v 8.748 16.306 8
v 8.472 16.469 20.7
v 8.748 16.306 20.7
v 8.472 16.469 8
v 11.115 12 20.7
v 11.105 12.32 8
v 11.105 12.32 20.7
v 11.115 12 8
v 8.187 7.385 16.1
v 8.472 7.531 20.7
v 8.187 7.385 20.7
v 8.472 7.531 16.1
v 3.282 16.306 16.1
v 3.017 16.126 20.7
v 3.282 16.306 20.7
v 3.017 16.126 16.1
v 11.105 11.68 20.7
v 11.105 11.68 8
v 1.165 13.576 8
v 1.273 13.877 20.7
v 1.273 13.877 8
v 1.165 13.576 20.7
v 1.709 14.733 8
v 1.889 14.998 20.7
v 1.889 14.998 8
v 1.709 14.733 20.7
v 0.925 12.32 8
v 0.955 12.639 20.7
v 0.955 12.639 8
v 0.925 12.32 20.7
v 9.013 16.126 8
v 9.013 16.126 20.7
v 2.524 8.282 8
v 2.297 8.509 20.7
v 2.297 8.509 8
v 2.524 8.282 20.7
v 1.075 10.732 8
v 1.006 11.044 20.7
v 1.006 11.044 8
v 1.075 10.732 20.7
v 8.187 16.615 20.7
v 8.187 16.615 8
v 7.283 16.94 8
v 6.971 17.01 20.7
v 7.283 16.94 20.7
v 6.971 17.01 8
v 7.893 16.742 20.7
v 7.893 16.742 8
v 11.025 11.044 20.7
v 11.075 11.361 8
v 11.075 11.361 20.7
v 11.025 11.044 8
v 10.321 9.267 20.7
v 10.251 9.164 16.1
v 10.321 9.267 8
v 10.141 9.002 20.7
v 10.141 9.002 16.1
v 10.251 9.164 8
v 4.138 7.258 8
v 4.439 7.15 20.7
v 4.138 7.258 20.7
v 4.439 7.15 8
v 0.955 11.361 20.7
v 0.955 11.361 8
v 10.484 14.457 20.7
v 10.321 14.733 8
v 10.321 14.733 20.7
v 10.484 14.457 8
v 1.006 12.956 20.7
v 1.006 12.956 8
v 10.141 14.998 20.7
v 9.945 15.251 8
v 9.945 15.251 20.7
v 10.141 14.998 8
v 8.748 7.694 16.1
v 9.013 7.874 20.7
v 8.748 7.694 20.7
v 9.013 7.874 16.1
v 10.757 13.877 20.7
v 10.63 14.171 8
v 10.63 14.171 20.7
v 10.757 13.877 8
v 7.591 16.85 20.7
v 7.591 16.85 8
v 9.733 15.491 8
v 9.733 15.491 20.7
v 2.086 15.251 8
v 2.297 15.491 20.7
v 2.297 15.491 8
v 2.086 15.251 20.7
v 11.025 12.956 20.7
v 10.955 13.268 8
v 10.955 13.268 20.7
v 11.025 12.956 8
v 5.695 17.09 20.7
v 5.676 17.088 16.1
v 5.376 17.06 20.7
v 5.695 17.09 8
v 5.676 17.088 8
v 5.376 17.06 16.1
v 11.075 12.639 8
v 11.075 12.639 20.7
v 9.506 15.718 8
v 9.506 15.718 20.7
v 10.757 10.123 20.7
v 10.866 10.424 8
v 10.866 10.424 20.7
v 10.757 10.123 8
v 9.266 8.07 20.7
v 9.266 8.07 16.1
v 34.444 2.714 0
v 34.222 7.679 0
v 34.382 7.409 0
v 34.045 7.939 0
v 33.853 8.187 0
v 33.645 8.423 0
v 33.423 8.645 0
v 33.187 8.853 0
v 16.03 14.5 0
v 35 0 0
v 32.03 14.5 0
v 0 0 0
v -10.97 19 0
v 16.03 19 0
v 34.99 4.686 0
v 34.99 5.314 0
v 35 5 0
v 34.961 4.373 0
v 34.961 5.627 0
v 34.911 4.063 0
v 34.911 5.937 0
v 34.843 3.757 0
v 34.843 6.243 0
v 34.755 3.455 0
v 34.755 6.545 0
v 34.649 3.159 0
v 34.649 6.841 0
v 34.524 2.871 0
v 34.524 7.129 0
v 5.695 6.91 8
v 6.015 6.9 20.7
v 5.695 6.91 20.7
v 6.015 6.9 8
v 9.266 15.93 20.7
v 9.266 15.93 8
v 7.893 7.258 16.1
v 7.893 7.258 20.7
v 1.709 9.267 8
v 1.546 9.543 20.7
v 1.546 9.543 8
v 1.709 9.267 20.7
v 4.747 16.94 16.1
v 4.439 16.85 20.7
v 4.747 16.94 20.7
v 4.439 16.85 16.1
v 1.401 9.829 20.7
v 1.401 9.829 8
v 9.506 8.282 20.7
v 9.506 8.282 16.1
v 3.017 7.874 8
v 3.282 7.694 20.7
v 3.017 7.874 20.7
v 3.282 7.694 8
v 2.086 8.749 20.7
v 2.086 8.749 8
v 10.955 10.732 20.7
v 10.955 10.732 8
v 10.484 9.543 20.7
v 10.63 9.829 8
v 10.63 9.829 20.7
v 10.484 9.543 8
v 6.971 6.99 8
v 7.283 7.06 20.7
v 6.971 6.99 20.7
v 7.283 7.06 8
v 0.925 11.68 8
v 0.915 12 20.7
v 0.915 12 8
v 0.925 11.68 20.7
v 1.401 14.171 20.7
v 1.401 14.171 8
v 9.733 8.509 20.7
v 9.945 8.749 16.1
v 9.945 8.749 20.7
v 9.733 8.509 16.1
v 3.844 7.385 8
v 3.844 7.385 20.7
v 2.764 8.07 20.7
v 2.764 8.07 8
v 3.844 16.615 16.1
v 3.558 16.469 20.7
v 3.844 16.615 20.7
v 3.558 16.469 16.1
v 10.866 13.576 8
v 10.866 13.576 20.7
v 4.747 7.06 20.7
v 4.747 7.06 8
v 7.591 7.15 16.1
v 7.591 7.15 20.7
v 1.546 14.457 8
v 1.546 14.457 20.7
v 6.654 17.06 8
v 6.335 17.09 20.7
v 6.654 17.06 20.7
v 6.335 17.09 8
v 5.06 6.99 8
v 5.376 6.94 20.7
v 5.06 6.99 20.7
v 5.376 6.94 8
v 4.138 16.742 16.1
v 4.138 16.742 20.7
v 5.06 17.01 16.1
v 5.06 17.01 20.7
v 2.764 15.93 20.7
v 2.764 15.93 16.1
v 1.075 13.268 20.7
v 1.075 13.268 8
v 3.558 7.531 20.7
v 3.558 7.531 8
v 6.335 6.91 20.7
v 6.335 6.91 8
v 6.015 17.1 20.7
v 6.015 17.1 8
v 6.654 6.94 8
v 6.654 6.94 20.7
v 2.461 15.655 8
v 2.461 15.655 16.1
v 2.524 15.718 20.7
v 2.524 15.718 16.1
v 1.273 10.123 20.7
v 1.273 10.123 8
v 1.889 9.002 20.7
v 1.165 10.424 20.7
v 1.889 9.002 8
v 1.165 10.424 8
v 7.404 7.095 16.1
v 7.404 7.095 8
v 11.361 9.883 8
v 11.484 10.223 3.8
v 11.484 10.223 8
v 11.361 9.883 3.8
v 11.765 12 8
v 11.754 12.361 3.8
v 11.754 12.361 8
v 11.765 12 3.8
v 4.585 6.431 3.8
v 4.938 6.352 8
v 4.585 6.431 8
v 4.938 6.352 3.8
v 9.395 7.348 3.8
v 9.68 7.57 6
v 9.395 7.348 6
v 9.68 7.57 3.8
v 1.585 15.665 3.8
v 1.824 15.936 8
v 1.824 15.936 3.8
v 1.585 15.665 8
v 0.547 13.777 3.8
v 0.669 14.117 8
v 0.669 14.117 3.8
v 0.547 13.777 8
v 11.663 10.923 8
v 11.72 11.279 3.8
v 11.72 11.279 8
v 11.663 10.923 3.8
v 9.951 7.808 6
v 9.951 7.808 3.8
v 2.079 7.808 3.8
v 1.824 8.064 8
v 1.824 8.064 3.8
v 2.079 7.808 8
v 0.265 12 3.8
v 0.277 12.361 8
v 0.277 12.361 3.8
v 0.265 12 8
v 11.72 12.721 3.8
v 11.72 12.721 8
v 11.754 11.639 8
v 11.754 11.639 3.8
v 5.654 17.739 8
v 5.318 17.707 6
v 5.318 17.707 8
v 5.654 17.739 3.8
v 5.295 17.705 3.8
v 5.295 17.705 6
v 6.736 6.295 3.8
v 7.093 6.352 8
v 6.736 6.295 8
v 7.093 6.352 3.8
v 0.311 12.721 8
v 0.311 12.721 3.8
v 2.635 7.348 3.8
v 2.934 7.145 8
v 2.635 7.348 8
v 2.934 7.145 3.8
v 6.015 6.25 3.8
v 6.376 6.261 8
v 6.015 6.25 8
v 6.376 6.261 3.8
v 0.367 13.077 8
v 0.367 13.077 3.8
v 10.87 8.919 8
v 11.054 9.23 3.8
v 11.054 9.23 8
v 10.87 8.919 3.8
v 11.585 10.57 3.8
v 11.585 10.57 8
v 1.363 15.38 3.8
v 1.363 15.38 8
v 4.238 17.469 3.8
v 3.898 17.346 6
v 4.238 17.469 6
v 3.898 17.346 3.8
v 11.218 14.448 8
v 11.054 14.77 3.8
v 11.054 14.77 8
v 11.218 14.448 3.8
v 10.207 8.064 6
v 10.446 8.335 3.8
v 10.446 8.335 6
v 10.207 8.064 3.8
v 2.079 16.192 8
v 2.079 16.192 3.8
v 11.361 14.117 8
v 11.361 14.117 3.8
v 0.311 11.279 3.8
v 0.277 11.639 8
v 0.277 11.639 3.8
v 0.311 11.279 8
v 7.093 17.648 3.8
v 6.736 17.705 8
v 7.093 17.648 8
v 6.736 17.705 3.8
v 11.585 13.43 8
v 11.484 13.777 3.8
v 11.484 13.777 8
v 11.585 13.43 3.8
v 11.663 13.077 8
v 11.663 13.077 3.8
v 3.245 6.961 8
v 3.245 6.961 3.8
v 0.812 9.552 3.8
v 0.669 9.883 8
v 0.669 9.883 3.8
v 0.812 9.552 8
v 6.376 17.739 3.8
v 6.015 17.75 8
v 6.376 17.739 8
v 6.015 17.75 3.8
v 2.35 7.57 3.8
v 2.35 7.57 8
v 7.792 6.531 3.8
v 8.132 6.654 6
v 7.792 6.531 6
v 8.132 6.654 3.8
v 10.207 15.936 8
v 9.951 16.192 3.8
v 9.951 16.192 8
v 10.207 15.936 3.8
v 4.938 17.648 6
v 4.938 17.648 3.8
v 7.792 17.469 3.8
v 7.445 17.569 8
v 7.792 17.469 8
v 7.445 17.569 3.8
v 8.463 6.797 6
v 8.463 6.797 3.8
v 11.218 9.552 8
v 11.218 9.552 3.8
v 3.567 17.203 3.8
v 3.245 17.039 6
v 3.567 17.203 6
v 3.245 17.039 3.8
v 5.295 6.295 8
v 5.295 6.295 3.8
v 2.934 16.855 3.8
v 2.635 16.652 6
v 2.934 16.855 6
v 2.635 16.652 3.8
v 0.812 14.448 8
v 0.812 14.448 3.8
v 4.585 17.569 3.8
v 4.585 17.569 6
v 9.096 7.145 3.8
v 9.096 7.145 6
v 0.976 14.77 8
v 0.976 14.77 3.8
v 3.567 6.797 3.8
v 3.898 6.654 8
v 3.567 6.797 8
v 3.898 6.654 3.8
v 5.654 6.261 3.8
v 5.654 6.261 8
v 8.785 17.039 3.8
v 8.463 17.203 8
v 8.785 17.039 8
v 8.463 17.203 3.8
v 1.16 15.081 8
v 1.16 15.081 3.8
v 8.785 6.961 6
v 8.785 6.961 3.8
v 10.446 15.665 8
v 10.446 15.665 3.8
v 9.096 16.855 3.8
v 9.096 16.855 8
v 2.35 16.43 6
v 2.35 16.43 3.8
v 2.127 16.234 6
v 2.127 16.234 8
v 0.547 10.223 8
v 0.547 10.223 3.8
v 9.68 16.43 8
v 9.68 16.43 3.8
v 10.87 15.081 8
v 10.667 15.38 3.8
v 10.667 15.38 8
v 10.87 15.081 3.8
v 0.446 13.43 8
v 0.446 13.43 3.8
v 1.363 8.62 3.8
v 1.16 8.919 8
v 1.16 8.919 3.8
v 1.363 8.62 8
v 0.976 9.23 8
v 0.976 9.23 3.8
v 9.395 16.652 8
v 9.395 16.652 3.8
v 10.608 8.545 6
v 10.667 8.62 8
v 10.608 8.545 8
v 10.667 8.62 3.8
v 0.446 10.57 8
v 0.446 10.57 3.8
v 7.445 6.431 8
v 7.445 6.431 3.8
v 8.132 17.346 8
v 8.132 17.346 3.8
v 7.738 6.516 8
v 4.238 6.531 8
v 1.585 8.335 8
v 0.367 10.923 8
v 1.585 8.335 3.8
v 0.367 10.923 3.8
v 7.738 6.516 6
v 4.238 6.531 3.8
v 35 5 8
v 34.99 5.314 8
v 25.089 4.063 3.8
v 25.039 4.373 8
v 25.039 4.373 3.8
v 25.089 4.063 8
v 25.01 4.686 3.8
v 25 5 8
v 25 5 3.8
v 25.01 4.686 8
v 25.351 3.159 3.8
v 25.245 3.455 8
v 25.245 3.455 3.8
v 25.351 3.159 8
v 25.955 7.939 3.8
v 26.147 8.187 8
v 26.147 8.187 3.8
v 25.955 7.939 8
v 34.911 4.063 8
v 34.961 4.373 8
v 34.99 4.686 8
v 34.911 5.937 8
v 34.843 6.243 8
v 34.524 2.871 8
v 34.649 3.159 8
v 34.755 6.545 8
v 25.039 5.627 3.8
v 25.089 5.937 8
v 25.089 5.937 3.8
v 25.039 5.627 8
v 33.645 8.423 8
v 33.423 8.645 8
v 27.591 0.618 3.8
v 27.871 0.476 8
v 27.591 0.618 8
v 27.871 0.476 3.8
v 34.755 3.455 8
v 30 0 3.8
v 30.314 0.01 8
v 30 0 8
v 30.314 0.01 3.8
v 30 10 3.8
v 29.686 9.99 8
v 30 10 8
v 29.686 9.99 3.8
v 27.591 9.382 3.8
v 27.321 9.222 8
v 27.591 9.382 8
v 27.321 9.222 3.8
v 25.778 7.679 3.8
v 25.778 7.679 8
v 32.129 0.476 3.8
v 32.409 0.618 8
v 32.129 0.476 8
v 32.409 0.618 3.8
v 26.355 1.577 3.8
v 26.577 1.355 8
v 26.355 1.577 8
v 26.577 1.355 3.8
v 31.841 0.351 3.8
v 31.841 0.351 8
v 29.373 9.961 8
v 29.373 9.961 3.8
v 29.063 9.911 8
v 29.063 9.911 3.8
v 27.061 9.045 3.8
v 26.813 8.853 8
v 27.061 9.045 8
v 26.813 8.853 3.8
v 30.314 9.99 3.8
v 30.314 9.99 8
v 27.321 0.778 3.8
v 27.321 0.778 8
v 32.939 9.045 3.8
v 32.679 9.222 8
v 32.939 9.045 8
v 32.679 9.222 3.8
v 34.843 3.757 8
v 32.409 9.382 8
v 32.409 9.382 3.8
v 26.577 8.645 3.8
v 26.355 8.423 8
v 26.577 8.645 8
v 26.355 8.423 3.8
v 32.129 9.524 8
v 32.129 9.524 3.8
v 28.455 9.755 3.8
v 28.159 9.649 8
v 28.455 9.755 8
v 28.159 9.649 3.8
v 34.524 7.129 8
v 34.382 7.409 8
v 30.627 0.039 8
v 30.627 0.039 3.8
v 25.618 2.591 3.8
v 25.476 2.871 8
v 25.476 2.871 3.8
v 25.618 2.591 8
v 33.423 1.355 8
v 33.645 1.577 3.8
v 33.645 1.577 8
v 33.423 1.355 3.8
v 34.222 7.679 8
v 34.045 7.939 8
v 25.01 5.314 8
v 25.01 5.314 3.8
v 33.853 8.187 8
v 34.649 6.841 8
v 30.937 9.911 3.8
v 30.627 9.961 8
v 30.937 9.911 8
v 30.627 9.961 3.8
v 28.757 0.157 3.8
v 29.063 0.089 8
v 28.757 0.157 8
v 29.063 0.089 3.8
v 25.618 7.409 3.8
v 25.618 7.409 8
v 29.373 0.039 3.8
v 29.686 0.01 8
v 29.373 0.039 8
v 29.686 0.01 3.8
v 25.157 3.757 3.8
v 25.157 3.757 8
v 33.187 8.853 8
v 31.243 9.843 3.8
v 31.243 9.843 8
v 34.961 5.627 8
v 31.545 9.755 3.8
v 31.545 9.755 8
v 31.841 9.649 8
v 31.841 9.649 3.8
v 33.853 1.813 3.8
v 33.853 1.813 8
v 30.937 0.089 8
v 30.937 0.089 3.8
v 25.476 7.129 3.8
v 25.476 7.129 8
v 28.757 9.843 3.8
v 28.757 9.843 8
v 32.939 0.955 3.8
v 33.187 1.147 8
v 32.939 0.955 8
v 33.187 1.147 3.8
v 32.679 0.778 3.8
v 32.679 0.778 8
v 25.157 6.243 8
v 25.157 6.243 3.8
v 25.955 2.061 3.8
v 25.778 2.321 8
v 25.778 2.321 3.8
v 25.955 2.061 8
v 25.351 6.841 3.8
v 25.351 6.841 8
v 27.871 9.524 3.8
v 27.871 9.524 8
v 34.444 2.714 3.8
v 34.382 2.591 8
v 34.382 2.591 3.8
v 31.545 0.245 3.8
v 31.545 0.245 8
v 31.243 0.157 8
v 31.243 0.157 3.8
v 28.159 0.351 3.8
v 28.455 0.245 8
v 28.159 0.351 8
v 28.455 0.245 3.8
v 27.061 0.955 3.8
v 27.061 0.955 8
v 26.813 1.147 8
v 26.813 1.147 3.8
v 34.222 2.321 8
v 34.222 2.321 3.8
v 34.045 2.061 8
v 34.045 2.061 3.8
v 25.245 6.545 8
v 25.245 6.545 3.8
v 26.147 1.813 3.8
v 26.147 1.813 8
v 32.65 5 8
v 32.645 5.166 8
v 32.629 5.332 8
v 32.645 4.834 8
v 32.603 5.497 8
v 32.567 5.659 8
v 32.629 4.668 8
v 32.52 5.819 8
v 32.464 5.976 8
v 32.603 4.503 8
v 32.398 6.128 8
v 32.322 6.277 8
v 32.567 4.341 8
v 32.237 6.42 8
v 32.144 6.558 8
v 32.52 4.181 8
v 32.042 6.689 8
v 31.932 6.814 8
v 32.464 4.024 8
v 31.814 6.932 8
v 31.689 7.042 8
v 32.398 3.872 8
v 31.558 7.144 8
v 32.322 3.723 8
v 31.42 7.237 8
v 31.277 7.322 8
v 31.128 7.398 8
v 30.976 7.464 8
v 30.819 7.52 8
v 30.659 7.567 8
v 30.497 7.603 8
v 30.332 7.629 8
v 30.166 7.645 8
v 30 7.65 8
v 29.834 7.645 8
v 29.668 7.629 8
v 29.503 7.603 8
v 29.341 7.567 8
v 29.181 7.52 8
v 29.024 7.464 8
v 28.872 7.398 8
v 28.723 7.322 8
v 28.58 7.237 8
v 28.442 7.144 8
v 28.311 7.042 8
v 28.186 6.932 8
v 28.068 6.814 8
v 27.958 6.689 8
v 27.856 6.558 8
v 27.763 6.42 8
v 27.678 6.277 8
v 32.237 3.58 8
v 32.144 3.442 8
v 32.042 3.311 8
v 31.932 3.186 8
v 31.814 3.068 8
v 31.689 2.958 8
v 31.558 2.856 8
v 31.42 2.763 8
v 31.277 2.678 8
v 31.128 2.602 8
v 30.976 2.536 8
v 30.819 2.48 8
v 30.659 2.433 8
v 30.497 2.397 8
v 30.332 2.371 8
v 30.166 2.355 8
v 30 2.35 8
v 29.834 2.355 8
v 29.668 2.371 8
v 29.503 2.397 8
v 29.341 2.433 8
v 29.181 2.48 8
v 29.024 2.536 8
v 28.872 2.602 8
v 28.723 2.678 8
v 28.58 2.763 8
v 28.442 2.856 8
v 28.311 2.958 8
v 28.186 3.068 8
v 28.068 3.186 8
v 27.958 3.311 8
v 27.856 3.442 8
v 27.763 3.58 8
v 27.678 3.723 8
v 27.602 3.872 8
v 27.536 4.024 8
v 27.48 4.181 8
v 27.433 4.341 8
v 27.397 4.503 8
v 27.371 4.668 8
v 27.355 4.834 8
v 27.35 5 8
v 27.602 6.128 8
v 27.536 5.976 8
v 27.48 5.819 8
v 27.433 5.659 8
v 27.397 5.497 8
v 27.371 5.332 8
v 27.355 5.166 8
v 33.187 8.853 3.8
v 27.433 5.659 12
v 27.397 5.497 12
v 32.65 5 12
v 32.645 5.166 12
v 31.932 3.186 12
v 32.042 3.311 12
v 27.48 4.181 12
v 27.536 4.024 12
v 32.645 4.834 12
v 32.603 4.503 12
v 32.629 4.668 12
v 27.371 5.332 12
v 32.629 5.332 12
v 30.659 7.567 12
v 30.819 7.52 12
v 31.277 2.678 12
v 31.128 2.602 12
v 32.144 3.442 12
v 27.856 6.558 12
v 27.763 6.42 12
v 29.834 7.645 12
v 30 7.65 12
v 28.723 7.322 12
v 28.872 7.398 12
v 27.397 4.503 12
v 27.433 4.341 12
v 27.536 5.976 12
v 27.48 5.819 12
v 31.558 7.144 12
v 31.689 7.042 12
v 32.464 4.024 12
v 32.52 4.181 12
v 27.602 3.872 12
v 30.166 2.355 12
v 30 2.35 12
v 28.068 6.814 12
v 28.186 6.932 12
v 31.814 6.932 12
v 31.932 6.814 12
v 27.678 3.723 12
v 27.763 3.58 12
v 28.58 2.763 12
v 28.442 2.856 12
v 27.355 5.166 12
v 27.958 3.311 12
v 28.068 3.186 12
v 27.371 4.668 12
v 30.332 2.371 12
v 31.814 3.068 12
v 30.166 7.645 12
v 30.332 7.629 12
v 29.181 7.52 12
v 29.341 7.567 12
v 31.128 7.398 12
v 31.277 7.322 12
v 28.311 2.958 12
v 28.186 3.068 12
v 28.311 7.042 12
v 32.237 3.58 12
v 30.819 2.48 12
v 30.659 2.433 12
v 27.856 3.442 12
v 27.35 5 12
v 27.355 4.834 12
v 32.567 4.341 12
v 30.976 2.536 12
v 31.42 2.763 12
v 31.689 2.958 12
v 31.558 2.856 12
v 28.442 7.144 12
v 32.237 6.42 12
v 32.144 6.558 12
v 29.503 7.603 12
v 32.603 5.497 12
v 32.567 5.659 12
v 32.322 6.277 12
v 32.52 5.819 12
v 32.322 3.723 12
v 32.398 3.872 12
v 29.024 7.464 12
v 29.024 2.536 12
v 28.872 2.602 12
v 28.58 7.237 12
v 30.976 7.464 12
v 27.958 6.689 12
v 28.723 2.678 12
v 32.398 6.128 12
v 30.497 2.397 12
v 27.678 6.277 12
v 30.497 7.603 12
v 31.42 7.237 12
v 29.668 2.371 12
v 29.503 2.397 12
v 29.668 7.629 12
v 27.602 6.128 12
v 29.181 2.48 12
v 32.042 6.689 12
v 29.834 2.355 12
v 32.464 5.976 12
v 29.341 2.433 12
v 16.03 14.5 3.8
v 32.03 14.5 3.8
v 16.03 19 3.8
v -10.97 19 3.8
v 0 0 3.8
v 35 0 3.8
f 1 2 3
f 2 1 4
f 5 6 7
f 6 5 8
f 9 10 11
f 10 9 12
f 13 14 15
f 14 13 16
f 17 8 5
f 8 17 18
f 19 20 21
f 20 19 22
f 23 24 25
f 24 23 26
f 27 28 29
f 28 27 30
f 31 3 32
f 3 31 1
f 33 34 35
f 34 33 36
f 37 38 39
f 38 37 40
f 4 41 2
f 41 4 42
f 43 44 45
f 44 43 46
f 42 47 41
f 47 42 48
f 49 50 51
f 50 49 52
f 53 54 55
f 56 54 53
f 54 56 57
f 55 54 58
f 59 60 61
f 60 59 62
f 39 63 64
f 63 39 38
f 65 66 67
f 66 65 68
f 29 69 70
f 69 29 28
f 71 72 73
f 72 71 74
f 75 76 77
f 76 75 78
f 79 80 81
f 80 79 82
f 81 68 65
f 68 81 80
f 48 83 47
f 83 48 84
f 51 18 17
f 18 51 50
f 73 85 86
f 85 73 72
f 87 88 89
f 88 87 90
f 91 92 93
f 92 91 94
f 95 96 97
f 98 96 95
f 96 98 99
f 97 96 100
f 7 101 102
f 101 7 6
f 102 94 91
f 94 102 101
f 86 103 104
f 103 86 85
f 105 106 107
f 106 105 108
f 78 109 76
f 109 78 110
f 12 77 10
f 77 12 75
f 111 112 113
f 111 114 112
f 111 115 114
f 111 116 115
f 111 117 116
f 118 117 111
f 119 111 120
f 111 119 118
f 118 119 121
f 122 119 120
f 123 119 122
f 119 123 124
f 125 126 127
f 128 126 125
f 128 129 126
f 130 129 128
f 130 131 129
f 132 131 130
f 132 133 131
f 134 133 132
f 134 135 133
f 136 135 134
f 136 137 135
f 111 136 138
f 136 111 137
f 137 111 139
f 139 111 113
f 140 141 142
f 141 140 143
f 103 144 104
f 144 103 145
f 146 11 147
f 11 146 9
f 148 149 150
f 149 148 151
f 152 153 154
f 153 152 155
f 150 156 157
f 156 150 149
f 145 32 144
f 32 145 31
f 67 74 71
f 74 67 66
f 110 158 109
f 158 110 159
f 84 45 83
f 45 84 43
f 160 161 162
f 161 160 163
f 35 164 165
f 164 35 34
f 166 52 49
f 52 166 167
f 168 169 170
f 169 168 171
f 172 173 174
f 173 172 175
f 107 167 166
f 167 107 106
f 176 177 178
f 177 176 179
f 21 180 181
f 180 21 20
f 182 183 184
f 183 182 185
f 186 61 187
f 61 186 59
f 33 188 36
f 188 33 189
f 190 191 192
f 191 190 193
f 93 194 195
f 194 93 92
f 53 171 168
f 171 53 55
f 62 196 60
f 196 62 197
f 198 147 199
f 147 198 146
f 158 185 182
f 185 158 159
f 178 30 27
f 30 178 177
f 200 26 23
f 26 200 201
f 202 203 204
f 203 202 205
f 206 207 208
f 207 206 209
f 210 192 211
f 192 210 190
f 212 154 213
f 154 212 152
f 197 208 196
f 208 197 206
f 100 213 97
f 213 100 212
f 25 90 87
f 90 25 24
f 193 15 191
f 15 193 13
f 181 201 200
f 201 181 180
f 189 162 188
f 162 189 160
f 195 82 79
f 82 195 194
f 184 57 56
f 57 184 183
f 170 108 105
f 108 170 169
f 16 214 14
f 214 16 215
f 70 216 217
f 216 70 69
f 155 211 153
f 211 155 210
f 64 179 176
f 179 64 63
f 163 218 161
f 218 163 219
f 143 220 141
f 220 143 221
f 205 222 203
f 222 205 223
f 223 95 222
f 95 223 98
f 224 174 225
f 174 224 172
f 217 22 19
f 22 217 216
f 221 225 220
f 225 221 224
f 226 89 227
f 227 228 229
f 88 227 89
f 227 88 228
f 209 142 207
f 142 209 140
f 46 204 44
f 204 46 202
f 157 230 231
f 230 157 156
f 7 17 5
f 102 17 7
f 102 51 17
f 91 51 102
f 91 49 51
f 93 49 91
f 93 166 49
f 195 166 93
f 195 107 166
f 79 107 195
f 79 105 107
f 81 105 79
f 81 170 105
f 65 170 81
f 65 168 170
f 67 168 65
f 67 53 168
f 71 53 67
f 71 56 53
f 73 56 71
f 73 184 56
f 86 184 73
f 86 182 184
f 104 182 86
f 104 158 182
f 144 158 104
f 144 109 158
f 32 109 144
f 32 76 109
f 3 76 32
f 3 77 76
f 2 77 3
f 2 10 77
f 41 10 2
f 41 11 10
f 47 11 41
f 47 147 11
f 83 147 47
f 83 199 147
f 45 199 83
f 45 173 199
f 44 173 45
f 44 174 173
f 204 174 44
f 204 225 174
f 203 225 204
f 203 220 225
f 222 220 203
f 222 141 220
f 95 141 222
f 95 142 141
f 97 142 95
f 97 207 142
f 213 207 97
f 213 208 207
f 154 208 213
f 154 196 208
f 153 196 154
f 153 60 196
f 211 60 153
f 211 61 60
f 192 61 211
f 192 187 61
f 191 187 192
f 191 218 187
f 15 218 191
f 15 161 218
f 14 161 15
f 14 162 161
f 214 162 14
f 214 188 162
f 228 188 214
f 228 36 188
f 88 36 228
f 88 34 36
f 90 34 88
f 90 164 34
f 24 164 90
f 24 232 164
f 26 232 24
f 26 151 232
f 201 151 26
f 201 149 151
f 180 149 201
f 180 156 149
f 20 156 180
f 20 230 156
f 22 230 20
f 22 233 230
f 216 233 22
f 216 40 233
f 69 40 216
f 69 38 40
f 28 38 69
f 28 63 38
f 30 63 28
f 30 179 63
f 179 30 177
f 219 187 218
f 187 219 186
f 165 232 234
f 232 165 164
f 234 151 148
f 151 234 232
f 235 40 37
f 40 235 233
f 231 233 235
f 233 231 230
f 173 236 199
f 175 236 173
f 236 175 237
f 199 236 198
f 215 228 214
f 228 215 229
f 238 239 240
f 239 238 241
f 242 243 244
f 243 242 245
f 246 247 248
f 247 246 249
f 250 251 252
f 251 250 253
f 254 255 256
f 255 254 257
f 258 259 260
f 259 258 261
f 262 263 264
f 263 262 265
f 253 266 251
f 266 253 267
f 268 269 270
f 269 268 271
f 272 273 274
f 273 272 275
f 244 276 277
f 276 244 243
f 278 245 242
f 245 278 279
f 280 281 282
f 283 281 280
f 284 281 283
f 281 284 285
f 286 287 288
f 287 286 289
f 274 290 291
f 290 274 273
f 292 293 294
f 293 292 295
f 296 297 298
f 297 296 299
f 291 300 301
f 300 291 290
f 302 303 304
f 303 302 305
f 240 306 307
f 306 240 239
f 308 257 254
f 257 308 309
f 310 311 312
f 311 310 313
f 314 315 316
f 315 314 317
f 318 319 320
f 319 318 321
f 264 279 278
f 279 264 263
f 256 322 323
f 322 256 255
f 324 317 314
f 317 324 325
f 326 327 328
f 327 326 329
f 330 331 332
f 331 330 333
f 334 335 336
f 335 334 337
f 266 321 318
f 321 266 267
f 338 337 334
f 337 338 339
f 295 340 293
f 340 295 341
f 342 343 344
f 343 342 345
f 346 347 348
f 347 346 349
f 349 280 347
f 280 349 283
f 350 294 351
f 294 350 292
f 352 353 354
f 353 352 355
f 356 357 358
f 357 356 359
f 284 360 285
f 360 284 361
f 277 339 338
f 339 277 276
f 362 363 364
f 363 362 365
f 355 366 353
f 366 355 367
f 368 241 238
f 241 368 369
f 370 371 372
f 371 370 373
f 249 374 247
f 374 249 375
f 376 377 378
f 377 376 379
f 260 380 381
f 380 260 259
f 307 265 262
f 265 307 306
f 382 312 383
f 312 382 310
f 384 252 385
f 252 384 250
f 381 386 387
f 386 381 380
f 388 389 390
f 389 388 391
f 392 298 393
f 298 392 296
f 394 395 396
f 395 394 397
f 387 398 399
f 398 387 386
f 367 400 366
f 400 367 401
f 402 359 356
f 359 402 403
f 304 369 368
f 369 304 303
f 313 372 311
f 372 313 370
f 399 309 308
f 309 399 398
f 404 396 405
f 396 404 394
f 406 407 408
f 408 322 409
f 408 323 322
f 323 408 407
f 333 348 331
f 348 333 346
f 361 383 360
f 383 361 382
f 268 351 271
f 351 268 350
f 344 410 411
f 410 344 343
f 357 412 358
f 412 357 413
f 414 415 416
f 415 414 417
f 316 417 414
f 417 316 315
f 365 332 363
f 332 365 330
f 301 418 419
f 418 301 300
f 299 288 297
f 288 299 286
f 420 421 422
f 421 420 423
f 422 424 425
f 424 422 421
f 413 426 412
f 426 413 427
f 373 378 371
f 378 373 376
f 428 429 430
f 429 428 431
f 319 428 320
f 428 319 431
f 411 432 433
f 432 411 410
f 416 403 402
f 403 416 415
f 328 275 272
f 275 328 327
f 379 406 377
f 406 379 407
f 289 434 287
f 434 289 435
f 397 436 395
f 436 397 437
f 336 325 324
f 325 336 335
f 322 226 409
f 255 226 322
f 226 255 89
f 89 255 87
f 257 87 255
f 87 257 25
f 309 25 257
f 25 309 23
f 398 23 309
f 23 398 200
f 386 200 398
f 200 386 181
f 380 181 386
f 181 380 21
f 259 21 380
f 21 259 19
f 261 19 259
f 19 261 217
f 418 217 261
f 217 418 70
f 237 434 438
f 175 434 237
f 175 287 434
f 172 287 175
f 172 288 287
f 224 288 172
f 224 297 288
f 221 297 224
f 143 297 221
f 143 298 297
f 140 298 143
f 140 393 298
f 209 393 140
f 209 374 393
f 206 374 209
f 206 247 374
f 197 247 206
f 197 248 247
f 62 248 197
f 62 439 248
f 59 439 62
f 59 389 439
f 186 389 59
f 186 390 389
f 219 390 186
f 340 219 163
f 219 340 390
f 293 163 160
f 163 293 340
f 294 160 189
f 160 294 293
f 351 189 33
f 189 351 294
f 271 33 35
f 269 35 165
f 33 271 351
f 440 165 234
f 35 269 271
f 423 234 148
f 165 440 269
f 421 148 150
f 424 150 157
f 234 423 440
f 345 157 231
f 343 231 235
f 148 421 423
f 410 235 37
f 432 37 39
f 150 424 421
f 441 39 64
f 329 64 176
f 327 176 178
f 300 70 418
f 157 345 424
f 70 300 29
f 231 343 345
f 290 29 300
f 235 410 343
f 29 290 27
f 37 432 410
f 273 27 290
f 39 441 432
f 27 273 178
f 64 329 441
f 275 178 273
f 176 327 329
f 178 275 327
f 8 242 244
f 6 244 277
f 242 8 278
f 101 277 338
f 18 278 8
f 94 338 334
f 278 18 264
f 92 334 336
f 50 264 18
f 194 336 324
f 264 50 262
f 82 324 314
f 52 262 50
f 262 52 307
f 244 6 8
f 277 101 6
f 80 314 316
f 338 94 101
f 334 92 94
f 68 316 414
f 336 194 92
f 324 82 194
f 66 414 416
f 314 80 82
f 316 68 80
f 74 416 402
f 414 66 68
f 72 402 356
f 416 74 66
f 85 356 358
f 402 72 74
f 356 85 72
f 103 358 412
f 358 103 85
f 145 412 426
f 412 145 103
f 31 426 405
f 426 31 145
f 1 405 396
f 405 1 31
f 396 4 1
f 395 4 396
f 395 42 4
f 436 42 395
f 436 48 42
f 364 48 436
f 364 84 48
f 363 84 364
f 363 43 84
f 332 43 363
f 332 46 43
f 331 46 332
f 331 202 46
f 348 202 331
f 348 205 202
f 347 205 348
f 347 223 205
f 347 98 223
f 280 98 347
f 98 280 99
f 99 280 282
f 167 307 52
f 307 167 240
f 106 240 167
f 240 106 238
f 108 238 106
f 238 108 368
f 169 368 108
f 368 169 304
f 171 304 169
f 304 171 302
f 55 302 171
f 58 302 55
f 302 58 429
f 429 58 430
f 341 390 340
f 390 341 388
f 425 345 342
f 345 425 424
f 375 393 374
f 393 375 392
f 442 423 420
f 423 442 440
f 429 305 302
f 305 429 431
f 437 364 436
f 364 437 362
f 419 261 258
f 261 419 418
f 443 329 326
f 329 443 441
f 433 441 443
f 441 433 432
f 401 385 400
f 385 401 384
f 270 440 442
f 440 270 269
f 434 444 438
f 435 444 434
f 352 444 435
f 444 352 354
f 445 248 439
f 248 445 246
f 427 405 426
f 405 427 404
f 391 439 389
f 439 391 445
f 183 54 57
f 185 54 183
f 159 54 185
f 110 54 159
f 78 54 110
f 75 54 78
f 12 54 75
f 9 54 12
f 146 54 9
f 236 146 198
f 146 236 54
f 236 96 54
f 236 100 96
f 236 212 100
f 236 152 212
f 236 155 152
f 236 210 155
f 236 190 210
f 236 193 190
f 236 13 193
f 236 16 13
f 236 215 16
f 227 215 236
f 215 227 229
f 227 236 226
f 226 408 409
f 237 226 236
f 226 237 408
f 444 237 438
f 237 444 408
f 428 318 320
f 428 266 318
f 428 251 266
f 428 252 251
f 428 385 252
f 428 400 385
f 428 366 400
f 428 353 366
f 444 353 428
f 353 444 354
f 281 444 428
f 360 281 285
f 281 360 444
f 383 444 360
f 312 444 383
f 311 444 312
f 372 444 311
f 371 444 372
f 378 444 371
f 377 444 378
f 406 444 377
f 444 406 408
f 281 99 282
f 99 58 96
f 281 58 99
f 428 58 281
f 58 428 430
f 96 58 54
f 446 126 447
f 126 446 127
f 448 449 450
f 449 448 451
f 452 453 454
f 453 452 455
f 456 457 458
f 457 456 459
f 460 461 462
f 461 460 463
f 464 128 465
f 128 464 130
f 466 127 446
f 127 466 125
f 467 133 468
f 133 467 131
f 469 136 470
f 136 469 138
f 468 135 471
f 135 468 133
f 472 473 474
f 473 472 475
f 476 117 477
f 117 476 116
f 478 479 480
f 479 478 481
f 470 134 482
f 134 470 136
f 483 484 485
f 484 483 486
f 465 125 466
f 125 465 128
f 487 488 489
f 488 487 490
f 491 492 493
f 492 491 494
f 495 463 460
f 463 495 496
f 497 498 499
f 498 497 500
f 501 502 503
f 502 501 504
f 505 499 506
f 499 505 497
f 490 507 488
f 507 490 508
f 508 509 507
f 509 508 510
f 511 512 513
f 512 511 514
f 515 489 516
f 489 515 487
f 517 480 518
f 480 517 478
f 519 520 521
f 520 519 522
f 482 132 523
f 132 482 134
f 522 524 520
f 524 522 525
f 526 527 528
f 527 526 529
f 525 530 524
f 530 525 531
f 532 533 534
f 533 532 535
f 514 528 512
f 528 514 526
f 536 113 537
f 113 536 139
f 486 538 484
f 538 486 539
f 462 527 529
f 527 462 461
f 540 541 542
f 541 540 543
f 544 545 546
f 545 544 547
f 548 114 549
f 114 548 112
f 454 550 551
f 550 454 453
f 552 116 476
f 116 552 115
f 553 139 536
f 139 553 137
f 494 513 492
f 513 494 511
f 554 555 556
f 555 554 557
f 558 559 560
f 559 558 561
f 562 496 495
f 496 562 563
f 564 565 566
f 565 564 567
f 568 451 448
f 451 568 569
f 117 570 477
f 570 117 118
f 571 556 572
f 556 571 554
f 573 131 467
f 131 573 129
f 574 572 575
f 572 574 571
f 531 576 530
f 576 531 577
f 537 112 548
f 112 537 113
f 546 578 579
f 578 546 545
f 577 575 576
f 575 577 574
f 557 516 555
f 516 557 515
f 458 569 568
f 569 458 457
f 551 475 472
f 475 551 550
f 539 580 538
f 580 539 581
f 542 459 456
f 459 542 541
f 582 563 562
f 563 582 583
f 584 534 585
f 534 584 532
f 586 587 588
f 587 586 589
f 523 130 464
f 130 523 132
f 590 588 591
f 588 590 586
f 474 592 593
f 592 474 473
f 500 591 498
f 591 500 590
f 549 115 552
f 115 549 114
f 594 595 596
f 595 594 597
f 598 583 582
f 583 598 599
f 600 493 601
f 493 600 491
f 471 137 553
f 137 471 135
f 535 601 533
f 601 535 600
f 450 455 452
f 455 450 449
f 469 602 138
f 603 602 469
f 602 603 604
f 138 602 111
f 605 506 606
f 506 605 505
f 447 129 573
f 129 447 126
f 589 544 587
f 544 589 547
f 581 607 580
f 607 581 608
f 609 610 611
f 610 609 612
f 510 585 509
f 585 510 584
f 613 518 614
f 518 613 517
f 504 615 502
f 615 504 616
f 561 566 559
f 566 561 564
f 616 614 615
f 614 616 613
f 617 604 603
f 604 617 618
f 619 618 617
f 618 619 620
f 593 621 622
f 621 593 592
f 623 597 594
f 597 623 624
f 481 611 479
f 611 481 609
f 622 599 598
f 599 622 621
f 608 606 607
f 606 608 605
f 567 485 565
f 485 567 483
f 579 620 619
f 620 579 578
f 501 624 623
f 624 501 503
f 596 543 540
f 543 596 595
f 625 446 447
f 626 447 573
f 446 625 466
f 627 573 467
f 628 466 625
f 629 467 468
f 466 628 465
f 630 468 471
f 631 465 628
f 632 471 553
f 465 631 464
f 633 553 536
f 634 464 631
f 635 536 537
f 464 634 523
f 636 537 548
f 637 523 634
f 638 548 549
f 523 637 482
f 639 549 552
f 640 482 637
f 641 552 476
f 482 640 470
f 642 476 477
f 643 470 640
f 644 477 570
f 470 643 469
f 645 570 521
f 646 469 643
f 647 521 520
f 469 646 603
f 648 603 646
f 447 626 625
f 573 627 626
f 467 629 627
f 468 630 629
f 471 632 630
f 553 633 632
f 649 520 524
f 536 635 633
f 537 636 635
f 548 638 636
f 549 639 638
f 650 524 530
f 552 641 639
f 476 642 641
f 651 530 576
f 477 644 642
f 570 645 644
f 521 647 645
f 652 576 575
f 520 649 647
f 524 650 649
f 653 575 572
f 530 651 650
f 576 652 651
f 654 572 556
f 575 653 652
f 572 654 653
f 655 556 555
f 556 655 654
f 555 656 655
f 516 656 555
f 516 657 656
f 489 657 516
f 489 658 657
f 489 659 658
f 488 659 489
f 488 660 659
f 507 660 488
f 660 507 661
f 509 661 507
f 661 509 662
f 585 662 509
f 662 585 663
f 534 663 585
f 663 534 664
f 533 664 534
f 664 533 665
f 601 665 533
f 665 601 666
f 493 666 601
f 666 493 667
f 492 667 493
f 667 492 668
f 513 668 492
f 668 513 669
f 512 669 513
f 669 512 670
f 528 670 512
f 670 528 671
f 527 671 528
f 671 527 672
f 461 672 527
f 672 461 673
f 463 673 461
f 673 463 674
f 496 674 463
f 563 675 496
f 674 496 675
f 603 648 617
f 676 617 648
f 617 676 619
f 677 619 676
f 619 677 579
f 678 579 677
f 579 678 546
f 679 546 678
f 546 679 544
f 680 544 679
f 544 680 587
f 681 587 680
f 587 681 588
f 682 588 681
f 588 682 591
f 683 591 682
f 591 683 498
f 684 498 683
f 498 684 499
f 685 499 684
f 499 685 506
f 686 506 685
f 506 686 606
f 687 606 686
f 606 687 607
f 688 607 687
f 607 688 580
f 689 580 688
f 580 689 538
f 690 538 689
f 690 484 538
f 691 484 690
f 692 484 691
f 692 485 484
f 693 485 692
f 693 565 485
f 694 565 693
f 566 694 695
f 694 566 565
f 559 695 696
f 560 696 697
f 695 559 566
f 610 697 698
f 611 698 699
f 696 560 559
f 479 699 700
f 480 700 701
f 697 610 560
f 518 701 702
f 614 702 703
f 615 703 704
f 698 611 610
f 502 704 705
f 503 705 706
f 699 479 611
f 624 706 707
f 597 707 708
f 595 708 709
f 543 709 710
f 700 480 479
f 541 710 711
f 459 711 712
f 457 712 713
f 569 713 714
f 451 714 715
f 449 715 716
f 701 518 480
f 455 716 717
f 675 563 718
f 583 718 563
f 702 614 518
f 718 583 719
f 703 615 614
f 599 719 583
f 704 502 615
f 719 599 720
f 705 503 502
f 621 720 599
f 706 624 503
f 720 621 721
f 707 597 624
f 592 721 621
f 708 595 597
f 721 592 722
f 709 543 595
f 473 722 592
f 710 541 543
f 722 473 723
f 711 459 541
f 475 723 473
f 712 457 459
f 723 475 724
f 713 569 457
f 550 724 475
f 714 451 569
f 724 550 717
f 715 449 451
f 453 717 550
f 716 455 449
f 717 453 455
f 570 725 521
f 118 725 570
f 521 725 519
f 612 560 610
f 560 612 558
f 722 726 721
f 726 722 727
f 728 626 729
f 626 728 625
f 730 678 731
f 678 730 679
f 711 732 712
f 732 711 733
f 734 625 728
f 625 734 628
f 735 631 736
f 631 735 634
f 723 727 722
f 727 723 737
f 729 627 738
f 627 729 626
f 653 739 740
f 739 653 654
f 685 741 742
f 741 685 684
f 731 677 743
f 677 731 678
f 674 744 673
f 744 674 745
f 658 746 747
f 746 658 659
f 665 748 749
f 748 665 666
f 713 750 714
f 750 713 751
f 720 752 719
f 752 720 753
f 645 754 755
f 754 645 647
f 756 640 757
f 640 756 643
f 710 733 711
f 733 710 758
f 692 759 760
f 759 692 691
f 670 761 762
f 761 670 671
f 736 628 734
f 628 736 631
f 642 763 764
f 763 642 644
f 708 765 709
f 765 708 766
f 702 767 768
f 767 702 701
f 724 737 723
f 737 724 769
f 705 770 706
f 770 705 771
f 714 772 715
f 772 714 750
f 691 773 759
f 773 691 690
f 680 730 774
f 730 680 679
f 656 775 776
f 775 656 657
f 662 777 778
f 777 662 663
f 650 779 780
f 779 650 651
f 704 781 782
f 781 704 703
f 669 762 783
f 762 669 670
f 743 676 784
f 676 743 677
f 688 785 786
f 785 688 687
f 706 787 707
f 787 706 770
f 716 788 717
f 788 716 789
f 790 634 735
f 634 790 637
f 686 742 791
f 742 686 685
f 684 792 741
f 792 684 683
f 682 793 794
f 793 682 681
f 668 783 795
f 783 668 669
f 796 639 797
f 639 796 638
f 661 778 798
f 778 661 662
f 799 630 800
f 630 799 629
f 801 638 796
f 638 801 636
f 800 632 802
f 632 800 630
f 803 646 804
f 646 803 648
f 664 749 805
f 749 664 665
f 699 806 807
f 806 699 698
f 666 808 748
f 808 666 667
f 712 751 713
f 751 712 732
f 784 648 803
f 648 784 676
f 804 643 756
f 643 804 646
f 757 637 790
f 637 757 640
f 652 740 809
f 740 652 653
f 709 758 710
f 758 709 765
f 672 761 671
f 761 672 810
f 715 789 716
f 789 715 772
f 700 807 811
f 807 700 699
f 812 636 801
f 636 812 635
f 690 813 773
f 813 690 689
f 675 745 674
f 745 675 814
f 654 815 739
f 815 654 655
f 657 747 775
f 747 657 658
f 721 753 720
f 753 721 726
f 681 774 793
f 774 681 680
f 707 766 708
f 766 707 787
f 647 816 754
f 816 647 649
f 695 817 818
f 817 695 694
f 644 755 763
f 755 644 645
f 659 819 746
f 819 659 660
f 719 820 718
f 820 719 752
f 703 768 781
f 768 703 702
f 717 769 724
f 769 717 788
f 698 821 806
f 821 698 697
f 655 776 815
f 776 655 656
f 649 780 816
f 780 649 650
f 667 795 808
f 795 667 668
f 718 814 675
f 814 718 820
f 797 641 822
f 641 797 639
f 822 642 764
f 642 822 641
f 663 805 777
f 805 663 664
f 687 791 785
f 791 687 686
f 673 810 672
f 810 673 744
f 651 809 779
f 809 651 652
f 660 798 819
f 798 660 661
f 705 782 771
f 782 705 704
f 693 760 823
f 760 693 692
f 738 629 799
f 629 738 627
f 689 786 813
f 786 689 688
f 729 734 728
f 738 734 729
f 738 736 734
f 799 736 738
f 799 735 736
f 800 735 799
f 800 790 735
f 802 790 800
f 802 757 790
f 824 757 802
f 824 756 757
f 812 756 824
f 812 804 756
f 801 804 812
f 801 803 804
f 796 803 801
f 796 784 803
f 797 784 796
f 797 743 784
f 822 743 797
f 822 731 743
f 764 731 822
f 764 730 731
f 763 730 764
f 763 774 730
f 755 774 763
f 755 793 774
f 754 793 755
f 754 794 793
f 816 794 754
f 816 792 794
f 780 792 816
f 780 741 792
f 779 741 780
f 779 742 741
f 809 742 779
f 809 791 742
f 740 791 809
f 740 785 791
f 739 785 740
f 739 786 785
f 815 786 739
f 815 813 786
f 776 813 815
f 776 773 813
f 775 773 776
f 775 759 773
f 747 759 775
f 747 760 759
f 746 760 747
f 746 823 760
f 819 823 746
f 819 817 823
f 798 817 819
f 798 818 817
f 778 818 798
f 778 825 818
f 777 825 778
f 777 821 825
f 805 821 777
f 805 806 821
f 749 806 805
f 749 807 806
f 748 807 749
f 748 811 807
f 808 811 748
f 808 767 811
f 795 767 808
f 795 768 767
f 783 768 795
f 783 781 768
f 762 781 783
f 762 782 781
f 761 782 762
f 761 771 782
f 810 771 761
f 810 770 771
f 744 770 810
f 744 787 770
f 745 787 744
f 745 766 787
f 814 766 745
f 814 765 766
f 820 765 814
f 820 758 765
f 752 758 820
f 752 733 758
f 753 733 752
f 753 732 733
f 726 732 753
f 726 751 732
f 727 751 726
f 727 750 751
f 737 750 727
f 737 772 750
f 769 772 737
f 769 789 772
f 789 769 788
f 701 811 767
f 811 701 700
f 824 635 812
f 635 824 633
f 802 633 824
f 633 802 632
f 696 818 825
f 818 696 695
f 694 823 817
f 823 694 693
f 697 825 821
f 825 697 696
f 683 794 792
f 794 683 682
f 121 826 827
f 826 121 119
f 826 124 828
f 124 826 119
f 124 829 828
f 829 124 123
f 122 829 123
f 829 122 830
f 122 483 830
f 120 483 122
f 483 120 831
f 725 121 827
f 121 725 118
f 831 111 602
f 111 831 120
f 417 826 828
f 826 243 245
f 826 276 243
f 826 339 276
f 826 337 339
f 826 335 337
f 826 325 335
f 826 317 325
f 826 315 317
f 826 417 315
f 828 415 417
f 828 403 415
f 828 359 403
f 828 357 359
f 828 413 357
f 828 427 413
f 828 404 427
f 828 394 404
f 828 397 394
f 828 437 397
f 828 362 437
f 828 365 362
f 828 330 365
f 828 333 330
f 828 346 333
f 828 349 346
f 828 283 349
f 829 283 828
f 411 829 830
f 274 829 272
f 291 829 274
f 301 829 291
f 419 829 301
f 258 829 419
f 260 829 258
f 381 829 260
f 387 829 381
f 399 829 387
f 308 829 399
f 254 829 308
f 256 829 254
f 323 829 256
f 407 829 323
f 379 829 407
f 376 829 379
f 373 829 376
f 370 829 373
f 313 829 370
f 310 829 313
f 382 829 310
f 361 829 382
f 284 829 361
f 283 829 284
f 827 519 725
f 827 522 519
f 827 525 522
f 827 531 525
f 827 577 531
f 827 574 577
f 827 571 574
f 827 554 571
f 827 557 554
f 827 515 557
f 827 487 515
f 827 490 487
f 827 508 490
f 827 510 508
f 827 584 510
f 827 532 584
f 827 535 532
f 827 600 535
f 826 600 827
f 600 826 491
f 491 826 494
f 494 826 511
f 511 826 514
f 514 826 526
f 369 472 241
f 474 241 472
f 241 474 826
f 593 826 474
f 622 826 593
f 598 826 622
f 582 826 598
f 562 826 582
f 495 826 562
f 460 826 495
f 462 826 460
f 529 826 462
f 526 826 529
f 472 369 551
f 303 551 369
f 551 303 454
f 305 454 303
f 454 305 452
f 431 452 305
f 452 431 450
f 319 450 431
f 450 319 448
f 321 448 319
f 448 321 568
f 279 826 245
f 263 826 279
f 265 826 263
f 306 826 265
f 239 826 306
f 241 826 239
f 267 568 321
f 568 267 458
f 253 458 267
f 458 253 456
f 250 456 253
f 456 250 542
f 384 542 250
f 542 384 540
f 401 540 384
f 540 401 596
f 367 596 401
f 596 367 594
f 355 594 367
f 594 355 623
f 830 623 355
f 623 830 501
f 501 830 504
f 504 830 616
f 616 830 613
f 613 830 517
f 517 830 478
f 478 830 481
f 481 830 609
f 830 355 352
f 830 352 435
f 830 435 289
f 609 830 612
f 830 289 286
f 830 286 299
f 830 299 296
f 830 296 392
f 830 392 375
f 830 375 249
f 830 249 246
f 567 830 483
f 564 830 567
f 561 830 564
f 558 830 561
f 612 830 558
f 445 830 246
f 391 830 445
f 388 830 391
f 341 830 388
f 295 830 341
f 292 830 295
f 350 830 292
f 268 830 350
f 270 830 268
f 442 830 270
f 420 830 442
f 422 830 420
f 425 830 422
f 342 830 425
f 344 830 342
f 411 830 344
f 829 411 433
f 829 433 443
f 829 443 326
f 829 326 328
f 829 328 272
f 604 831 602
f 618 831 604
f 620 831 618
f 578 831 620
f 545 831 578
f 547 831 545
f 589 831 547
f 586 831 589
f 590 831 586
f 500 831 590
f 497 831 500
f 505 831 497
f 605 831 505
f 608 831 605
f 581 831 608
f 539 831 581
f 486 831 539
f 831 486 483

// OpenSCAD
$fn = 100;

// base
linear_extrude(3.8) {
    polygon(points = [[0,0], [-19/sqrt(3), 19], [27-19/sqrt(3), 19],
                     [27-19/sqrt(3), 14.5],[27-19/sqrt(3)+16, 14.5],
                     [35,0]],
            paths = [[0,1,2,3,4,5,6]]);
}

// large cylinder
difference(){
    translate([0.5*(27-19/sqrt(3)) - 2, 10 + 2, 0]) {
        cylinder(h = 20.7, r = 10.2/2, center=false);
        cylinder(h = 8, r = 11.5/2, center = false);
    }
    // hole
    translate([11.5, 0, 6]){
        rotate([0, 0, 30]) {
            cube([3.5, 40, 10.1], center = false);
        }
    }
}

// small cylinder
translate([30,5]){
    cylinder(h = 8, r = 10/2, center=false);
    cylinder(h = 12, r = 5.3/2, center=false);
}
